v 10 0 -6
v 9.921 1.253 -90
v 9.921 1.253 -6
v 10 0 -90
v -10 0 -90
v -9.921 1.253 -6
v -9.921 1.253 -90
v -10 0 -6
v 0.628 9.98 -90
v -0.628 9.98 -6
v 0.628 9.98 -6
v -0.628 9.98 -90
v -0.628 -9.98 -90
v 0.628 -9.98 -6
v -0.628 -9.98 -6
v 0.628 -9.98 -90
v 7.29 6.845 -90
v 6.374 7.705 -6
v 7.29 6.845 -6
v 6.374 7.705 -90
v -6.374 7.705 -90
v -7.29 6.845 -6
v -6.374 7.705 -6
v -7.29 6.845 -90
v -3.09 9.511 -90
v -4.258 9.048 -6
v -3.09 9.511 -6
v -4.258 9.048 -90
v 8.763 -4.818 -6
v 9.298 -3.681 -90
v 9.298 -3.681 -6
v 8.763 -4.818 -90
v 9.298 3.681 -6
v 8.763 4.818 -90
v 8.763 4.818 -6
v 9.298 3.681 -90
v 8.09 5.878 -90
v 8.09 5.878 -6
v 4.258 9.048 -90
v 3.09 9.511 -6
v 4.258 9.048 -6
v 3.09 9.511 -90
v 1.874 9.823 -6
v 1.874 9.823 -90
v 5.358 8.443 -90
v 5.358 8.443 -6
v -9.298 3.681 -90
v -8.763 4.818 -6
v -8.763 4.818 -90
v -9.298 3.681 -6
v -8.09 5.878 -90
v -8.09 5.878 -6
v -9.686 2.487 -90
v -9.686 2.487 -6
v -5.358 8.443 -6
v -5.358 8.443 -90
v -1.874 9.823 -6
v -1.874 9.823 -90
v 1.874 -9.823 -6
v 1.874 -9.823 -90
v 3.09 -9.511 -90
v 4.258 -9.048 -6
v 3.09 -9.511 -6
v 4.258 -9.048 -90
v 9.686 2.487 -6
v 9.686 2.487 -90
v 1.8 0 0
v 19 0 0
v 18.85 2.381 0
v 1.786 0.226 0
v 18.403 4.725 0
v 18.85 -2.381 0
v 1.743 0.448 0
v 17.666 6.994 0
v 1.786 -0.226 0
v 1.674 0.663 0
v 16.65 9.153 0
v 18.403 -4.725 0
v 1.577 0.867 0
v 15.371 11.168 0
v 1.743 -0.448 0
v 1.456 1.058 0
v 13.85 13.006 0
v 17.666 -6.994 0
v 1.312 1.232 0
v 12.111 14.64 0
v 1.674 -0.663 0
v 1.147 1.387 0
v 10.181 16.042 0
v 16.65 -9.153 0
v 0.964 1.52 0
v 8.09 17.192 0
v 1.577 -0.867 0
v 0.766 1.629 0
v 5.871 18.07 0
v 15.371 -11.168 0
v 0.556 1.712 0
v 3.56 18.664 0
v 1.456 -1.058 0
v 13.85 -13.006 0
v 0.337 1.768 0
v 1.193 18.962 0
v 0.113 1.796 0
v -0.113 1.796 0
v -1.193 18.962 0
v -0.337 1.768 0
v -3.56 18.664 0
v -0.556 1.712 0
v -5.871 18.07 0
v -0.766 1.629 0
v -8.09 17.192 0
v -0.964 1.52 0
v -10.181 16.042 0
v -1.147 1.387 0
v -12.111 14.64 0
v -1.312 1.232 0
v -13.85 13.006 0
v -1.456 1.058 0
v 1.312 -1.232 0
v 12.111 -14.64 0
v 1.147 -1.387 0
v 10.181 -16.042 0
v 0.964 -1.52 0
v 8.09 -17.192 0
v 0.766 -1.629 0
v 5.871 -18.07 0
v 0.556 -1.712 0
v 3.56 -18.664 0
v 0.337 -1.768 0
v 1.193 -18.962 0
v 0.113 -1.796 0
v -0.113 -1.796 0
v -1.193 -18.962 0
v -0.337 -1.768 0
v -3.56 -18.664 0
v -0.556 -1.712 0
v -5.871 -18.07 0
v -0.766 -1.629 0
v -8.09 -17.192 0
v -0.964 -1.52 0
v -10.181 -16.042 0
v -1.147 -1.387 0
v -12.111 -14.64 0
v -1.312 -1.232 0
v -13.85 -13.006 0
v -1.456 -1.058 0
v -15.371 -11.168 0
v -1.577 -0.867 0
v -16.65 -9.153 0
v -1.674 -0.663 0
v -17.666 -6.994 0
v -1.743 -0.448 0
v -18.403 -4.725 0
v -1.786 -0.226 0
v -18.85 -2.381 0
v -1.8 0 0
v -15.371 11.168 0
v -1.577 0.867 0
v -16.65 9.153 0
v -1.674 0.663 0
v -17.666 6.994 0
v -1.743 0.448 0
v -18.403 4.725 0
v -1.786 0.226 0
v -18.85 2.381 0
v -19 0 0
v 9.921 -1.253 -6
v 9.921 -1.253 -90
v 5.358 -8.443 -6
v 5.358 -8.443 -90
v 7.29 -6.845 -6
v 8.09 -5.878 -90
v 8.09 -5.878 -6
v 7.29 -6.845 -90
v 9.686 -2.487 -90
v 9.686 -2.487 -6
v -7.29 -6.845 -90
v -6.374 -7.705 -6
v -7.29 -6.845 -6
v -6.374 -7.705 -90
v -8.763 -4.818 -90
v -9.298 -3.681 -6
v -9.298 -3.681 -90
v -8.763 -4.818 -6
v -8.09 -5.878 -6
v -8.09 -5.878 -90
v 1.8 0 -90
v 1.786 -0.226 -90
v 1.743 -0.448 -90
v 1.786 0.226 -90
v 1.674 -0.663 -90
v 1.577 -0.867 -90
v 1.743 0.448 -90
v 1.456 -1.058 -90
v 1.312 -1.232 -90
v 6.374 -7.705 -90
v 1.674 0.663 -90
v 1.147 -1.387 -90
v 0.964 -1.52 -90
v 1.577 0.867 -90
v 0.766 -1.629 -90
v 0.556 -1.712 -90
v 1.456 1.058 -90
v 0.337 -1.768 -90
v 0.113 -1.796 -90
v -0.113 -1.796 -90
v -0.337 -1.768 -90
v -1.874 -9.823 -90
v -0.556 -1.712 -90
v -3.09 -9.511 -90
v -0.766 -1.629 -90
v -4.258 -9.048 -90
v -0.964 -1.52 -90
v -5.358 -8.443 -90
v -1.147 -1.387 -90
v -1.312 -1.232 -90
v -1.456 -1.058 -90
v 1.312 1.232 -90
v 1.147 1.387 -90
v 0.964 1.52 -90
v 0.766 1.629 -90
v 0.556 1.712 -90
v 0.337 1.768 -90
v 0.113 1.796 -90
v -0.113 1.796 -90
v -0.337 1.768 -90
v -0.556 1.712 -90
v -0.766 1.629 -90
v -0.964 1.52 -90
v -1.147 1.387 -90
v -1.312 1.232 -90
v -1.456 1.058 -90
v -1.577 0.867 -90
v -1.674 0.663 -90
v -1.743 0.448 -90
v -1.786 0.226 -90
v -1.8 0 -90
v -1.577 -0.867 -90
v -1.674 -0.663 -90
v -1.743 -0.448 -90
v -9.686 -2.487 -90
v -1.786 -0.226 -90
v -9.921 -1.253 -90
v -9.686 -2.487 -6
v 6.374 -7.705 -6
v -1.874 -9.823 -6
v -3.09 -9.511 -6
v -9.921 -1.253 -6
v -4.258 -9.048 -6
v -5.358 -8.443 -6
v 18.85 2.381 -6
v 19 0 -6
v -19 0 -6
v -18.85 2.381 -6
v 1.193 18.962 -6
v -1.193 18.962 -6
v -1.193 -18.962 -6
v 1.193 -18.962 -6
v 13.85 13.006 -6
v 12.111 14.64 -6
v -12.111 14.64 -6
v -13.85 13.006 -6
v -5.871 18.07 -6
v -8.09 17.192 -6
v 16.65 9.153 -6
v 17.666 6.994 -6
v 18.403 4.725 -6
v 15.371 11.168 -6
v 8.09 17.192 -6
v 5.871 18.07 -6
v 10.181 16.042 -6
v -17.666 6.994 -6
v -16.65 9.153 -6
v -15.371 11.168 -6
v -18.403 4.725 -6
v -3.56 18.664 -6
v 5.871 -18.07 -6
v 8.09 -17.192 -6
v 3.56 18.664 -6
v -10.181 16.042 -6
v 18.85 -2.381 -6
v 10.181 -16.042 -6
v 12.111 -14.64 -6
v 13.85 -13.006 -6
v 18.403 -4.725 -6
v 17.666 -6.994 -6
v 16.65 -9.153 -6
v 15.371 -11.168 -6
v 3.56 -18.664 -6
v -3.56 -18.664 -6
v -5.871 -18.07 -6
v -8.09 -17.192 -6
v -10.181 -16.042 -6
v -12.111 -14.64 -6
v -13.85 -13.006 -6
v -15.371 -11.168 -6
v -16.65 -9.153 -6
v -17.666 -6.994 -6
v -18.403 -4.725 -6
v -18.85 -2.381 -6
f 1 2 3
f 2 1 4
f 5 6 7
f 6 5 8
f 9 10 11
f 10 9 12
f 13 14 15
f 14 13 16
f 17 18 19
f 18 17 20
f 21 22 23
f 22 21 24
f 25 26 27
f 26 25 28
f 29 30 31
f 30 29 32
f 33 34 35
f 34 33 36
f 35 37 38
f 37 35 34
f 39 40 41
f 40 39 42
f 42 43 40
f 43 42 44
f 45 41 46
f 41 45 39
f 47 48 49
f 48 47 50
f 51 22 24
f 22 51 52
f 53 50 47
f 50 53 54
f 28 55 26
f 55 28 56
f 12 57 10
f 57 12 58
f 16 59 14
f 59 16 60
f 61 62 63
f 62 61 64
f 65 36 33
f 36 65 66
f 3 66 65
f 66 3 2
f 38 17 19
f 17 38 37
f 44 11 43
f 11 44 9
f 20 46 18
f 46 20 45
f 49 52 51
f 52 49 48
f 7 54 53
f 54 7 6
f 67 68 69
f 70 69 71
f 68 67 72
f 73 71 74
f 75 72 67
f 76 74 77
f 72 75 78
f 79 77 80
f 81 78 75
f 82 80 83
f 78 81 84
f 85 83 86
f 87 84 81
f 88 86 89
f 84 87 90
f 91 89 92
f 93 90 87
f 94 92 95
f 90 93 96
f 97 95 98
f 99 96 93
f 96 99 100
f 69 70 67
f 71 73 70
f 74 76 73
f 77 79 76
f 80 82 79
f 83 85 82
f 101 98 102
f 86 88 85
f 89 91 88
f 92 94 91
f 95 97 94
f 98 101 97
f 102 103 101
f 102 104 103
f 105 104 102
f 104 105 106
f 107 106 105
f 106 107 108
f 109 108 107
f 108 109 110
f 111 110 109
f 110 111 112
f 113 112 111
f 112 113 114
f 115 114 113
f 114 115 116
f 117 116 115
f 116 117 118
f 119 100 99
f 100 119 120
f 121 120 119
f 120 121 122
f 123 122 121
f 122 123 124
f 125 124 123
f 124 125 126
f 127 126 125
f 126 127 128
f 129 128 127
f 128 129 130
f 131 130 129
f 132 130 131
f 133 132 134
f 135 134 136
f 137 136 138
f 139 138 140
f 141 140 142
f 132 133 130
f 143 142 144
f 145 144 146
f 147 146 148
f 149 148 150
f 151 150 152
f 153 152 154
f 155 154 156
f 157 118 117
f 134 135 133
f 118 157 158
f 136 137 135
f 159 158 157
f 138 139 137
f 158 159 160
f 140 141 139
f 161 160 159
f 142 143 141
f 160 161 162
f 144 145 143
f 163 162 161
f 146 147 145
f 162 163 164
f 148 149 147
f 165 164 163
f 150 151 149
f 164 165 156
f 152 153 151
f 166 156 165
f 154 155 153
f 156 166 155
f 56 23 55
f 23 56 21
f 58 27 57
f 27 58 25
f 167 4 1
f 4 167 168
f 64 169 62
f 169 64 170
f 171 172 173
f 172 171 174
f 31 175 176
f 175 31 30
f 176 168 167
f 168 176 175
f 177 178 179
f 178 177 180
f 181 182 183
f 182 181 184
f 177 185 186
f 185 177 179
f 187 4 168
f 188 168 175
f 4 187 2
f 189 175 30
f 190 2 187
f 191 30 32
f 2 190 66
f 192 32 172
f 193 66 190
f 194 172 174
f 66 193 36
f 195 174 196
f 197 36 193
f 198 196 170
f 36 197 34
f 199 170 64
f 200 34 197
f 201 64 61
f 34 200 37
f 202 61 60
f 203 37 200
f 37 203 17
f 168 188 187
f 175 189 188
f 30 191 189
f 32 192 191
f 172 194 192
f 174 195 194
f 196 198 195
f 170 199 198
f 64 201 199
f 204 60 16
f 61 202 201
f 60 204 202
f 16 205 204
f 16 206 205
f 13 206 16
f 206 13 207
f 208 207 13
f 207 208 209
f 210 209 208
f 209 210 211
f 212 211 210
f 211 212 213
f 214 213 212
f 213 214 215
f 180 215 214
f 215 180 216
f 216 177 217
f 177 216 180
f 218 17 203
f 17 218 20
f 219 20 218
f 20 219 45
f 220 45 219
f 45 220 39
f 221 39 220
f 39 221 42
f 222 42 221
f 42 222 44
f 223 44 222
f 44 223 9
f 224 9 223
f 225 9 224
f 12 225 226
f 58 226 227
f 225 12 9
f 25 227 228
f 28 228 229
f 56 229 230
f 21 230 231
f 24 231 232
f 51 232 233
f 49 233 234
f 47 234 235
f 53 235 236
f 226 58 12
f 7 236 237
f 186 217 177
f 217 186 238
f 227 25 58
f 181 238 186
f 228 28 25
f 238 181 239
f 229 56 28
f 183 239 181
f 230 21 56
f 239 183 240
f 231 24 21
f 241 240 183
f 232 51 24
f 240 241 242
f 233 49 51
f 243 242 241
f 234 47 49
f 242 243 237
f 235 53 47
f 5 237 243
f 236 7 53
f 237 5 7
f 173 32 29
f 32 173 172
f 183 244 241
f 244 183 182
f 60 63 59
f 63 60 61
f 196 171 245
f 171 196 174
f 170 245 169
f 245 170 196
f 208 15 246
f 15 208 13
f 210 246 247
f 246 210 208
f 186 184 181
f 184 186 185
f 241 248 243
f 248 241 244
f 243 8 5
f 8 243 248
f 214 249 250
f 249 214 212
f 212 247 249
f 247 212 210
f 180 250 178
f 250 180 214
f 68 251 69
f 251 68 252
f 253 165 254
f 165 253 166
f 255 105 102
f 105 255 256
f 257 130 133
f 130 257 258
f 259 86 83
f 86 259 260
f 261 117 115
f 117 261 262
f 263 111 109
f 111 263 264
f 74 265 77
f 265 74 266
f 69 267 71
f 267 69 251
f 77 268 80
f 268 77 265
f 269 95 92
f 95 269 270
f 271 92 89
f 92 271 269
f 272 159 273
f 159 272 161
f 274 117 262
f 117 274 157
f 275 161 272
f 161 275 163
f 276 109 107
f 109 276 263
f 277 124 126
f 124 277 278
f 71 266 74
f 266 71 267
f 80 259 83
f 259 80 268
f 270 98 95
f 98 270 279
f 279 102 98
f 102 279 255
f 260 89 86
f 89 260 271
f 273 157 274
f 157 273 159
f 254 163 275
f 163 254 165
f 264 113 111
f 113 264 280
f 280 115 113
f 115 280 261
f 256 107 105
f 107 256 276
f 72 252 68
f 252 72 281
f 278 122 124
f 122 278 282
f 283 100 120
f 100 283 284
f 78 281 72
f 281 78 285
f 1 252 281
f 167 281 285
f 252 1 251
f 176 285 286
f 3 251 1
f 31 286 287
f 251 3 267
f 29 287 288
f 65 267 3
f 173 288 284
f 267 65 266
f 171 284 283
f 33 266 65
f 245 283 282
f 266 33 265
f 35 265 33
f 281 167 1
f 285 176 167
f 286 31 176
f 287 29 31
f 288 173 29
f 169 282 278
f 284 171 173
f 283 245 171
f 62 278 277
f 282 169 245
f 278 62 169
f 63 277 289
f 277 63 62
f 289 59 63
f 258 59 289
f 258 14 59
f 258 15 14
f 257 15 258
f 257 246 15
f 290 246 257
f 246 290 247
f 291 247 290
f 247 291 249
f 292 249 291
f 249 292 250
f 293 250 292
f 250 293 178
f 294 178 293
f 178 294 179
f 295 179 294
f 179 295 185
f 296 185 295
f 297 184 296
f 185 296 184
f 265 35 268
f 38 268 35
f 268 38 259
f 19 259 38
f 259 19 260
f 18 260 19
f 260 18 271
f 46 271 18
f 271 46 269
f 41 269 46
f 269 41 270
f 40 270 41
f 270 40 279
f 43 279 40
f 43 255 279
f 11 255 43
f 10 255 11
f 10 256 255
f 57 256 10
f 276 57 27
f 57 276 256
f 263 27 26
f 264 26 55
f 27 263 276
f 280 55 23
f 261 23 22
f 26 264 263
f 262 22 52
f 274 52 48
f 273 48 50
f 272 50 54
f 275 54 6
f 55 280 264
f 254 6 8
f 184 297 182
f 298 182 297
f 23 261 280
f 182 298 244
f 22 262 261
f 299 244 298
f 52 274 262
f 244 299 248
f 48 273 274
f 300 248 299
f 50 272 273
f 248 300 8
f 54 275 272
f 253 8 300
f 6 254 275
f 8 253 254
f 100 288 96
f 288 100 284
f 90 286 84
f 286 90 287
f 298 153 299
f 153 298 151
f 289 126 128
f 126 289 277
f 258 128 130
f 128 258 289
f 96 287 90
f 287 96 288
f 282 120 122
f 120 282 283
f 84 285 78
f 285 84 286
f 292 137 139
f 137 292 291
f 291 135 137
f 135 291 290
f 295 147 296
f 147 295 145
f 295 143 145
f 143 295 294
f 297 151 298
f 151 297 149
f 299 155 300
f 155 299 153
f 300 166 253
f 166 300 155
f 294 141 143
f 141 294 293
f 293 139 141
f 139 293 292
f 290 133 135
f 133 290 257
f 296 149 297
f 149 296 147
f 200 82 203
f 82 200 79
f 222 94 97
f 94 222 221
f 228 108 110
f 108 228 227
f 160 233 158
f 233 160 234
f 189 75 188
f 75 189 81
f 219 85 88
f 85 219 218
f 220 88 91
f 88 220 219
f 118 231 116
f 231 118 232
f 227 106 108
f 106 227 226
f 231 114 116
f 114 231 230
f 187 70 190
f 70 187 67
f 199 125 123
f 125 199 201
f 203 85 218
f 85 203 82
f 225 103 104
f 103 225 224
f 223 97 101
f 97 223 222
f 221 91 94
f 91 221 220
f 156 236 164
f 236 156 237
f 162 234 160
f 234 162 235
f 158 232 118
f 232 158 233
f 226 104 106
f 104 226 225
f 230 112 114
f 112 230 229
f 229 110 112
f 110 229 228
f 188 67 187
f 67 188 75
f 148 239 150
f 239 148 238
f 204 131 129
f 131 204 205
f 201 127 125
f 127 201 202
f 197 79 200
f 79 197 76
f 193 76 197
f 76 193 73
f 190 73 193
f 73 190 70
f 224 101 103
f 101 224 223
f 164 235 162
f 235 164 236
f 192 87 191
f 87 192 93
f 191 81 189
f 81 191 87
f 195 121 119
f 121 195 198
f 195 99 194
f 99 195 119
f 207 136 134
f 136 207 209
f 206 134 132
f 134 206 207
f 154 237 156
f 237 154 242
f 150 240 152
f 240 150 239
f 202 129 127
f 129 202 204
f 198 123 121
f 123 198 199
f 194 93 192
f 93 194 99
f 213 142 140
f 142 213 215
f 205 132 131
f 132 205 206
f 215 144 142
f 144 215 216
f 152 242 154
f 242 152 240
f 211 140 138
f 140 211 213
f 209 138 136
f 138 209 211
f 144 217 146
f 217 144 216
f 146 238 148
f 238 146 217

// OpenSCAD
$fn = 50;


difference() {
	union() {
		translate(v = [0, 0, -90.0000000000]) {
			cylinder(h = 90, r = 10.0000000000);
		}
		translate(v = [0, 0, -6.0000000000]) {
			cylinder(h = 6, r = 19.0000000000);
		}
	}
	union() {
		#translate(v = [0, 0, -90]) {
			cylinder(h = 90, r = 1.8000000000);
		}
	}
}
